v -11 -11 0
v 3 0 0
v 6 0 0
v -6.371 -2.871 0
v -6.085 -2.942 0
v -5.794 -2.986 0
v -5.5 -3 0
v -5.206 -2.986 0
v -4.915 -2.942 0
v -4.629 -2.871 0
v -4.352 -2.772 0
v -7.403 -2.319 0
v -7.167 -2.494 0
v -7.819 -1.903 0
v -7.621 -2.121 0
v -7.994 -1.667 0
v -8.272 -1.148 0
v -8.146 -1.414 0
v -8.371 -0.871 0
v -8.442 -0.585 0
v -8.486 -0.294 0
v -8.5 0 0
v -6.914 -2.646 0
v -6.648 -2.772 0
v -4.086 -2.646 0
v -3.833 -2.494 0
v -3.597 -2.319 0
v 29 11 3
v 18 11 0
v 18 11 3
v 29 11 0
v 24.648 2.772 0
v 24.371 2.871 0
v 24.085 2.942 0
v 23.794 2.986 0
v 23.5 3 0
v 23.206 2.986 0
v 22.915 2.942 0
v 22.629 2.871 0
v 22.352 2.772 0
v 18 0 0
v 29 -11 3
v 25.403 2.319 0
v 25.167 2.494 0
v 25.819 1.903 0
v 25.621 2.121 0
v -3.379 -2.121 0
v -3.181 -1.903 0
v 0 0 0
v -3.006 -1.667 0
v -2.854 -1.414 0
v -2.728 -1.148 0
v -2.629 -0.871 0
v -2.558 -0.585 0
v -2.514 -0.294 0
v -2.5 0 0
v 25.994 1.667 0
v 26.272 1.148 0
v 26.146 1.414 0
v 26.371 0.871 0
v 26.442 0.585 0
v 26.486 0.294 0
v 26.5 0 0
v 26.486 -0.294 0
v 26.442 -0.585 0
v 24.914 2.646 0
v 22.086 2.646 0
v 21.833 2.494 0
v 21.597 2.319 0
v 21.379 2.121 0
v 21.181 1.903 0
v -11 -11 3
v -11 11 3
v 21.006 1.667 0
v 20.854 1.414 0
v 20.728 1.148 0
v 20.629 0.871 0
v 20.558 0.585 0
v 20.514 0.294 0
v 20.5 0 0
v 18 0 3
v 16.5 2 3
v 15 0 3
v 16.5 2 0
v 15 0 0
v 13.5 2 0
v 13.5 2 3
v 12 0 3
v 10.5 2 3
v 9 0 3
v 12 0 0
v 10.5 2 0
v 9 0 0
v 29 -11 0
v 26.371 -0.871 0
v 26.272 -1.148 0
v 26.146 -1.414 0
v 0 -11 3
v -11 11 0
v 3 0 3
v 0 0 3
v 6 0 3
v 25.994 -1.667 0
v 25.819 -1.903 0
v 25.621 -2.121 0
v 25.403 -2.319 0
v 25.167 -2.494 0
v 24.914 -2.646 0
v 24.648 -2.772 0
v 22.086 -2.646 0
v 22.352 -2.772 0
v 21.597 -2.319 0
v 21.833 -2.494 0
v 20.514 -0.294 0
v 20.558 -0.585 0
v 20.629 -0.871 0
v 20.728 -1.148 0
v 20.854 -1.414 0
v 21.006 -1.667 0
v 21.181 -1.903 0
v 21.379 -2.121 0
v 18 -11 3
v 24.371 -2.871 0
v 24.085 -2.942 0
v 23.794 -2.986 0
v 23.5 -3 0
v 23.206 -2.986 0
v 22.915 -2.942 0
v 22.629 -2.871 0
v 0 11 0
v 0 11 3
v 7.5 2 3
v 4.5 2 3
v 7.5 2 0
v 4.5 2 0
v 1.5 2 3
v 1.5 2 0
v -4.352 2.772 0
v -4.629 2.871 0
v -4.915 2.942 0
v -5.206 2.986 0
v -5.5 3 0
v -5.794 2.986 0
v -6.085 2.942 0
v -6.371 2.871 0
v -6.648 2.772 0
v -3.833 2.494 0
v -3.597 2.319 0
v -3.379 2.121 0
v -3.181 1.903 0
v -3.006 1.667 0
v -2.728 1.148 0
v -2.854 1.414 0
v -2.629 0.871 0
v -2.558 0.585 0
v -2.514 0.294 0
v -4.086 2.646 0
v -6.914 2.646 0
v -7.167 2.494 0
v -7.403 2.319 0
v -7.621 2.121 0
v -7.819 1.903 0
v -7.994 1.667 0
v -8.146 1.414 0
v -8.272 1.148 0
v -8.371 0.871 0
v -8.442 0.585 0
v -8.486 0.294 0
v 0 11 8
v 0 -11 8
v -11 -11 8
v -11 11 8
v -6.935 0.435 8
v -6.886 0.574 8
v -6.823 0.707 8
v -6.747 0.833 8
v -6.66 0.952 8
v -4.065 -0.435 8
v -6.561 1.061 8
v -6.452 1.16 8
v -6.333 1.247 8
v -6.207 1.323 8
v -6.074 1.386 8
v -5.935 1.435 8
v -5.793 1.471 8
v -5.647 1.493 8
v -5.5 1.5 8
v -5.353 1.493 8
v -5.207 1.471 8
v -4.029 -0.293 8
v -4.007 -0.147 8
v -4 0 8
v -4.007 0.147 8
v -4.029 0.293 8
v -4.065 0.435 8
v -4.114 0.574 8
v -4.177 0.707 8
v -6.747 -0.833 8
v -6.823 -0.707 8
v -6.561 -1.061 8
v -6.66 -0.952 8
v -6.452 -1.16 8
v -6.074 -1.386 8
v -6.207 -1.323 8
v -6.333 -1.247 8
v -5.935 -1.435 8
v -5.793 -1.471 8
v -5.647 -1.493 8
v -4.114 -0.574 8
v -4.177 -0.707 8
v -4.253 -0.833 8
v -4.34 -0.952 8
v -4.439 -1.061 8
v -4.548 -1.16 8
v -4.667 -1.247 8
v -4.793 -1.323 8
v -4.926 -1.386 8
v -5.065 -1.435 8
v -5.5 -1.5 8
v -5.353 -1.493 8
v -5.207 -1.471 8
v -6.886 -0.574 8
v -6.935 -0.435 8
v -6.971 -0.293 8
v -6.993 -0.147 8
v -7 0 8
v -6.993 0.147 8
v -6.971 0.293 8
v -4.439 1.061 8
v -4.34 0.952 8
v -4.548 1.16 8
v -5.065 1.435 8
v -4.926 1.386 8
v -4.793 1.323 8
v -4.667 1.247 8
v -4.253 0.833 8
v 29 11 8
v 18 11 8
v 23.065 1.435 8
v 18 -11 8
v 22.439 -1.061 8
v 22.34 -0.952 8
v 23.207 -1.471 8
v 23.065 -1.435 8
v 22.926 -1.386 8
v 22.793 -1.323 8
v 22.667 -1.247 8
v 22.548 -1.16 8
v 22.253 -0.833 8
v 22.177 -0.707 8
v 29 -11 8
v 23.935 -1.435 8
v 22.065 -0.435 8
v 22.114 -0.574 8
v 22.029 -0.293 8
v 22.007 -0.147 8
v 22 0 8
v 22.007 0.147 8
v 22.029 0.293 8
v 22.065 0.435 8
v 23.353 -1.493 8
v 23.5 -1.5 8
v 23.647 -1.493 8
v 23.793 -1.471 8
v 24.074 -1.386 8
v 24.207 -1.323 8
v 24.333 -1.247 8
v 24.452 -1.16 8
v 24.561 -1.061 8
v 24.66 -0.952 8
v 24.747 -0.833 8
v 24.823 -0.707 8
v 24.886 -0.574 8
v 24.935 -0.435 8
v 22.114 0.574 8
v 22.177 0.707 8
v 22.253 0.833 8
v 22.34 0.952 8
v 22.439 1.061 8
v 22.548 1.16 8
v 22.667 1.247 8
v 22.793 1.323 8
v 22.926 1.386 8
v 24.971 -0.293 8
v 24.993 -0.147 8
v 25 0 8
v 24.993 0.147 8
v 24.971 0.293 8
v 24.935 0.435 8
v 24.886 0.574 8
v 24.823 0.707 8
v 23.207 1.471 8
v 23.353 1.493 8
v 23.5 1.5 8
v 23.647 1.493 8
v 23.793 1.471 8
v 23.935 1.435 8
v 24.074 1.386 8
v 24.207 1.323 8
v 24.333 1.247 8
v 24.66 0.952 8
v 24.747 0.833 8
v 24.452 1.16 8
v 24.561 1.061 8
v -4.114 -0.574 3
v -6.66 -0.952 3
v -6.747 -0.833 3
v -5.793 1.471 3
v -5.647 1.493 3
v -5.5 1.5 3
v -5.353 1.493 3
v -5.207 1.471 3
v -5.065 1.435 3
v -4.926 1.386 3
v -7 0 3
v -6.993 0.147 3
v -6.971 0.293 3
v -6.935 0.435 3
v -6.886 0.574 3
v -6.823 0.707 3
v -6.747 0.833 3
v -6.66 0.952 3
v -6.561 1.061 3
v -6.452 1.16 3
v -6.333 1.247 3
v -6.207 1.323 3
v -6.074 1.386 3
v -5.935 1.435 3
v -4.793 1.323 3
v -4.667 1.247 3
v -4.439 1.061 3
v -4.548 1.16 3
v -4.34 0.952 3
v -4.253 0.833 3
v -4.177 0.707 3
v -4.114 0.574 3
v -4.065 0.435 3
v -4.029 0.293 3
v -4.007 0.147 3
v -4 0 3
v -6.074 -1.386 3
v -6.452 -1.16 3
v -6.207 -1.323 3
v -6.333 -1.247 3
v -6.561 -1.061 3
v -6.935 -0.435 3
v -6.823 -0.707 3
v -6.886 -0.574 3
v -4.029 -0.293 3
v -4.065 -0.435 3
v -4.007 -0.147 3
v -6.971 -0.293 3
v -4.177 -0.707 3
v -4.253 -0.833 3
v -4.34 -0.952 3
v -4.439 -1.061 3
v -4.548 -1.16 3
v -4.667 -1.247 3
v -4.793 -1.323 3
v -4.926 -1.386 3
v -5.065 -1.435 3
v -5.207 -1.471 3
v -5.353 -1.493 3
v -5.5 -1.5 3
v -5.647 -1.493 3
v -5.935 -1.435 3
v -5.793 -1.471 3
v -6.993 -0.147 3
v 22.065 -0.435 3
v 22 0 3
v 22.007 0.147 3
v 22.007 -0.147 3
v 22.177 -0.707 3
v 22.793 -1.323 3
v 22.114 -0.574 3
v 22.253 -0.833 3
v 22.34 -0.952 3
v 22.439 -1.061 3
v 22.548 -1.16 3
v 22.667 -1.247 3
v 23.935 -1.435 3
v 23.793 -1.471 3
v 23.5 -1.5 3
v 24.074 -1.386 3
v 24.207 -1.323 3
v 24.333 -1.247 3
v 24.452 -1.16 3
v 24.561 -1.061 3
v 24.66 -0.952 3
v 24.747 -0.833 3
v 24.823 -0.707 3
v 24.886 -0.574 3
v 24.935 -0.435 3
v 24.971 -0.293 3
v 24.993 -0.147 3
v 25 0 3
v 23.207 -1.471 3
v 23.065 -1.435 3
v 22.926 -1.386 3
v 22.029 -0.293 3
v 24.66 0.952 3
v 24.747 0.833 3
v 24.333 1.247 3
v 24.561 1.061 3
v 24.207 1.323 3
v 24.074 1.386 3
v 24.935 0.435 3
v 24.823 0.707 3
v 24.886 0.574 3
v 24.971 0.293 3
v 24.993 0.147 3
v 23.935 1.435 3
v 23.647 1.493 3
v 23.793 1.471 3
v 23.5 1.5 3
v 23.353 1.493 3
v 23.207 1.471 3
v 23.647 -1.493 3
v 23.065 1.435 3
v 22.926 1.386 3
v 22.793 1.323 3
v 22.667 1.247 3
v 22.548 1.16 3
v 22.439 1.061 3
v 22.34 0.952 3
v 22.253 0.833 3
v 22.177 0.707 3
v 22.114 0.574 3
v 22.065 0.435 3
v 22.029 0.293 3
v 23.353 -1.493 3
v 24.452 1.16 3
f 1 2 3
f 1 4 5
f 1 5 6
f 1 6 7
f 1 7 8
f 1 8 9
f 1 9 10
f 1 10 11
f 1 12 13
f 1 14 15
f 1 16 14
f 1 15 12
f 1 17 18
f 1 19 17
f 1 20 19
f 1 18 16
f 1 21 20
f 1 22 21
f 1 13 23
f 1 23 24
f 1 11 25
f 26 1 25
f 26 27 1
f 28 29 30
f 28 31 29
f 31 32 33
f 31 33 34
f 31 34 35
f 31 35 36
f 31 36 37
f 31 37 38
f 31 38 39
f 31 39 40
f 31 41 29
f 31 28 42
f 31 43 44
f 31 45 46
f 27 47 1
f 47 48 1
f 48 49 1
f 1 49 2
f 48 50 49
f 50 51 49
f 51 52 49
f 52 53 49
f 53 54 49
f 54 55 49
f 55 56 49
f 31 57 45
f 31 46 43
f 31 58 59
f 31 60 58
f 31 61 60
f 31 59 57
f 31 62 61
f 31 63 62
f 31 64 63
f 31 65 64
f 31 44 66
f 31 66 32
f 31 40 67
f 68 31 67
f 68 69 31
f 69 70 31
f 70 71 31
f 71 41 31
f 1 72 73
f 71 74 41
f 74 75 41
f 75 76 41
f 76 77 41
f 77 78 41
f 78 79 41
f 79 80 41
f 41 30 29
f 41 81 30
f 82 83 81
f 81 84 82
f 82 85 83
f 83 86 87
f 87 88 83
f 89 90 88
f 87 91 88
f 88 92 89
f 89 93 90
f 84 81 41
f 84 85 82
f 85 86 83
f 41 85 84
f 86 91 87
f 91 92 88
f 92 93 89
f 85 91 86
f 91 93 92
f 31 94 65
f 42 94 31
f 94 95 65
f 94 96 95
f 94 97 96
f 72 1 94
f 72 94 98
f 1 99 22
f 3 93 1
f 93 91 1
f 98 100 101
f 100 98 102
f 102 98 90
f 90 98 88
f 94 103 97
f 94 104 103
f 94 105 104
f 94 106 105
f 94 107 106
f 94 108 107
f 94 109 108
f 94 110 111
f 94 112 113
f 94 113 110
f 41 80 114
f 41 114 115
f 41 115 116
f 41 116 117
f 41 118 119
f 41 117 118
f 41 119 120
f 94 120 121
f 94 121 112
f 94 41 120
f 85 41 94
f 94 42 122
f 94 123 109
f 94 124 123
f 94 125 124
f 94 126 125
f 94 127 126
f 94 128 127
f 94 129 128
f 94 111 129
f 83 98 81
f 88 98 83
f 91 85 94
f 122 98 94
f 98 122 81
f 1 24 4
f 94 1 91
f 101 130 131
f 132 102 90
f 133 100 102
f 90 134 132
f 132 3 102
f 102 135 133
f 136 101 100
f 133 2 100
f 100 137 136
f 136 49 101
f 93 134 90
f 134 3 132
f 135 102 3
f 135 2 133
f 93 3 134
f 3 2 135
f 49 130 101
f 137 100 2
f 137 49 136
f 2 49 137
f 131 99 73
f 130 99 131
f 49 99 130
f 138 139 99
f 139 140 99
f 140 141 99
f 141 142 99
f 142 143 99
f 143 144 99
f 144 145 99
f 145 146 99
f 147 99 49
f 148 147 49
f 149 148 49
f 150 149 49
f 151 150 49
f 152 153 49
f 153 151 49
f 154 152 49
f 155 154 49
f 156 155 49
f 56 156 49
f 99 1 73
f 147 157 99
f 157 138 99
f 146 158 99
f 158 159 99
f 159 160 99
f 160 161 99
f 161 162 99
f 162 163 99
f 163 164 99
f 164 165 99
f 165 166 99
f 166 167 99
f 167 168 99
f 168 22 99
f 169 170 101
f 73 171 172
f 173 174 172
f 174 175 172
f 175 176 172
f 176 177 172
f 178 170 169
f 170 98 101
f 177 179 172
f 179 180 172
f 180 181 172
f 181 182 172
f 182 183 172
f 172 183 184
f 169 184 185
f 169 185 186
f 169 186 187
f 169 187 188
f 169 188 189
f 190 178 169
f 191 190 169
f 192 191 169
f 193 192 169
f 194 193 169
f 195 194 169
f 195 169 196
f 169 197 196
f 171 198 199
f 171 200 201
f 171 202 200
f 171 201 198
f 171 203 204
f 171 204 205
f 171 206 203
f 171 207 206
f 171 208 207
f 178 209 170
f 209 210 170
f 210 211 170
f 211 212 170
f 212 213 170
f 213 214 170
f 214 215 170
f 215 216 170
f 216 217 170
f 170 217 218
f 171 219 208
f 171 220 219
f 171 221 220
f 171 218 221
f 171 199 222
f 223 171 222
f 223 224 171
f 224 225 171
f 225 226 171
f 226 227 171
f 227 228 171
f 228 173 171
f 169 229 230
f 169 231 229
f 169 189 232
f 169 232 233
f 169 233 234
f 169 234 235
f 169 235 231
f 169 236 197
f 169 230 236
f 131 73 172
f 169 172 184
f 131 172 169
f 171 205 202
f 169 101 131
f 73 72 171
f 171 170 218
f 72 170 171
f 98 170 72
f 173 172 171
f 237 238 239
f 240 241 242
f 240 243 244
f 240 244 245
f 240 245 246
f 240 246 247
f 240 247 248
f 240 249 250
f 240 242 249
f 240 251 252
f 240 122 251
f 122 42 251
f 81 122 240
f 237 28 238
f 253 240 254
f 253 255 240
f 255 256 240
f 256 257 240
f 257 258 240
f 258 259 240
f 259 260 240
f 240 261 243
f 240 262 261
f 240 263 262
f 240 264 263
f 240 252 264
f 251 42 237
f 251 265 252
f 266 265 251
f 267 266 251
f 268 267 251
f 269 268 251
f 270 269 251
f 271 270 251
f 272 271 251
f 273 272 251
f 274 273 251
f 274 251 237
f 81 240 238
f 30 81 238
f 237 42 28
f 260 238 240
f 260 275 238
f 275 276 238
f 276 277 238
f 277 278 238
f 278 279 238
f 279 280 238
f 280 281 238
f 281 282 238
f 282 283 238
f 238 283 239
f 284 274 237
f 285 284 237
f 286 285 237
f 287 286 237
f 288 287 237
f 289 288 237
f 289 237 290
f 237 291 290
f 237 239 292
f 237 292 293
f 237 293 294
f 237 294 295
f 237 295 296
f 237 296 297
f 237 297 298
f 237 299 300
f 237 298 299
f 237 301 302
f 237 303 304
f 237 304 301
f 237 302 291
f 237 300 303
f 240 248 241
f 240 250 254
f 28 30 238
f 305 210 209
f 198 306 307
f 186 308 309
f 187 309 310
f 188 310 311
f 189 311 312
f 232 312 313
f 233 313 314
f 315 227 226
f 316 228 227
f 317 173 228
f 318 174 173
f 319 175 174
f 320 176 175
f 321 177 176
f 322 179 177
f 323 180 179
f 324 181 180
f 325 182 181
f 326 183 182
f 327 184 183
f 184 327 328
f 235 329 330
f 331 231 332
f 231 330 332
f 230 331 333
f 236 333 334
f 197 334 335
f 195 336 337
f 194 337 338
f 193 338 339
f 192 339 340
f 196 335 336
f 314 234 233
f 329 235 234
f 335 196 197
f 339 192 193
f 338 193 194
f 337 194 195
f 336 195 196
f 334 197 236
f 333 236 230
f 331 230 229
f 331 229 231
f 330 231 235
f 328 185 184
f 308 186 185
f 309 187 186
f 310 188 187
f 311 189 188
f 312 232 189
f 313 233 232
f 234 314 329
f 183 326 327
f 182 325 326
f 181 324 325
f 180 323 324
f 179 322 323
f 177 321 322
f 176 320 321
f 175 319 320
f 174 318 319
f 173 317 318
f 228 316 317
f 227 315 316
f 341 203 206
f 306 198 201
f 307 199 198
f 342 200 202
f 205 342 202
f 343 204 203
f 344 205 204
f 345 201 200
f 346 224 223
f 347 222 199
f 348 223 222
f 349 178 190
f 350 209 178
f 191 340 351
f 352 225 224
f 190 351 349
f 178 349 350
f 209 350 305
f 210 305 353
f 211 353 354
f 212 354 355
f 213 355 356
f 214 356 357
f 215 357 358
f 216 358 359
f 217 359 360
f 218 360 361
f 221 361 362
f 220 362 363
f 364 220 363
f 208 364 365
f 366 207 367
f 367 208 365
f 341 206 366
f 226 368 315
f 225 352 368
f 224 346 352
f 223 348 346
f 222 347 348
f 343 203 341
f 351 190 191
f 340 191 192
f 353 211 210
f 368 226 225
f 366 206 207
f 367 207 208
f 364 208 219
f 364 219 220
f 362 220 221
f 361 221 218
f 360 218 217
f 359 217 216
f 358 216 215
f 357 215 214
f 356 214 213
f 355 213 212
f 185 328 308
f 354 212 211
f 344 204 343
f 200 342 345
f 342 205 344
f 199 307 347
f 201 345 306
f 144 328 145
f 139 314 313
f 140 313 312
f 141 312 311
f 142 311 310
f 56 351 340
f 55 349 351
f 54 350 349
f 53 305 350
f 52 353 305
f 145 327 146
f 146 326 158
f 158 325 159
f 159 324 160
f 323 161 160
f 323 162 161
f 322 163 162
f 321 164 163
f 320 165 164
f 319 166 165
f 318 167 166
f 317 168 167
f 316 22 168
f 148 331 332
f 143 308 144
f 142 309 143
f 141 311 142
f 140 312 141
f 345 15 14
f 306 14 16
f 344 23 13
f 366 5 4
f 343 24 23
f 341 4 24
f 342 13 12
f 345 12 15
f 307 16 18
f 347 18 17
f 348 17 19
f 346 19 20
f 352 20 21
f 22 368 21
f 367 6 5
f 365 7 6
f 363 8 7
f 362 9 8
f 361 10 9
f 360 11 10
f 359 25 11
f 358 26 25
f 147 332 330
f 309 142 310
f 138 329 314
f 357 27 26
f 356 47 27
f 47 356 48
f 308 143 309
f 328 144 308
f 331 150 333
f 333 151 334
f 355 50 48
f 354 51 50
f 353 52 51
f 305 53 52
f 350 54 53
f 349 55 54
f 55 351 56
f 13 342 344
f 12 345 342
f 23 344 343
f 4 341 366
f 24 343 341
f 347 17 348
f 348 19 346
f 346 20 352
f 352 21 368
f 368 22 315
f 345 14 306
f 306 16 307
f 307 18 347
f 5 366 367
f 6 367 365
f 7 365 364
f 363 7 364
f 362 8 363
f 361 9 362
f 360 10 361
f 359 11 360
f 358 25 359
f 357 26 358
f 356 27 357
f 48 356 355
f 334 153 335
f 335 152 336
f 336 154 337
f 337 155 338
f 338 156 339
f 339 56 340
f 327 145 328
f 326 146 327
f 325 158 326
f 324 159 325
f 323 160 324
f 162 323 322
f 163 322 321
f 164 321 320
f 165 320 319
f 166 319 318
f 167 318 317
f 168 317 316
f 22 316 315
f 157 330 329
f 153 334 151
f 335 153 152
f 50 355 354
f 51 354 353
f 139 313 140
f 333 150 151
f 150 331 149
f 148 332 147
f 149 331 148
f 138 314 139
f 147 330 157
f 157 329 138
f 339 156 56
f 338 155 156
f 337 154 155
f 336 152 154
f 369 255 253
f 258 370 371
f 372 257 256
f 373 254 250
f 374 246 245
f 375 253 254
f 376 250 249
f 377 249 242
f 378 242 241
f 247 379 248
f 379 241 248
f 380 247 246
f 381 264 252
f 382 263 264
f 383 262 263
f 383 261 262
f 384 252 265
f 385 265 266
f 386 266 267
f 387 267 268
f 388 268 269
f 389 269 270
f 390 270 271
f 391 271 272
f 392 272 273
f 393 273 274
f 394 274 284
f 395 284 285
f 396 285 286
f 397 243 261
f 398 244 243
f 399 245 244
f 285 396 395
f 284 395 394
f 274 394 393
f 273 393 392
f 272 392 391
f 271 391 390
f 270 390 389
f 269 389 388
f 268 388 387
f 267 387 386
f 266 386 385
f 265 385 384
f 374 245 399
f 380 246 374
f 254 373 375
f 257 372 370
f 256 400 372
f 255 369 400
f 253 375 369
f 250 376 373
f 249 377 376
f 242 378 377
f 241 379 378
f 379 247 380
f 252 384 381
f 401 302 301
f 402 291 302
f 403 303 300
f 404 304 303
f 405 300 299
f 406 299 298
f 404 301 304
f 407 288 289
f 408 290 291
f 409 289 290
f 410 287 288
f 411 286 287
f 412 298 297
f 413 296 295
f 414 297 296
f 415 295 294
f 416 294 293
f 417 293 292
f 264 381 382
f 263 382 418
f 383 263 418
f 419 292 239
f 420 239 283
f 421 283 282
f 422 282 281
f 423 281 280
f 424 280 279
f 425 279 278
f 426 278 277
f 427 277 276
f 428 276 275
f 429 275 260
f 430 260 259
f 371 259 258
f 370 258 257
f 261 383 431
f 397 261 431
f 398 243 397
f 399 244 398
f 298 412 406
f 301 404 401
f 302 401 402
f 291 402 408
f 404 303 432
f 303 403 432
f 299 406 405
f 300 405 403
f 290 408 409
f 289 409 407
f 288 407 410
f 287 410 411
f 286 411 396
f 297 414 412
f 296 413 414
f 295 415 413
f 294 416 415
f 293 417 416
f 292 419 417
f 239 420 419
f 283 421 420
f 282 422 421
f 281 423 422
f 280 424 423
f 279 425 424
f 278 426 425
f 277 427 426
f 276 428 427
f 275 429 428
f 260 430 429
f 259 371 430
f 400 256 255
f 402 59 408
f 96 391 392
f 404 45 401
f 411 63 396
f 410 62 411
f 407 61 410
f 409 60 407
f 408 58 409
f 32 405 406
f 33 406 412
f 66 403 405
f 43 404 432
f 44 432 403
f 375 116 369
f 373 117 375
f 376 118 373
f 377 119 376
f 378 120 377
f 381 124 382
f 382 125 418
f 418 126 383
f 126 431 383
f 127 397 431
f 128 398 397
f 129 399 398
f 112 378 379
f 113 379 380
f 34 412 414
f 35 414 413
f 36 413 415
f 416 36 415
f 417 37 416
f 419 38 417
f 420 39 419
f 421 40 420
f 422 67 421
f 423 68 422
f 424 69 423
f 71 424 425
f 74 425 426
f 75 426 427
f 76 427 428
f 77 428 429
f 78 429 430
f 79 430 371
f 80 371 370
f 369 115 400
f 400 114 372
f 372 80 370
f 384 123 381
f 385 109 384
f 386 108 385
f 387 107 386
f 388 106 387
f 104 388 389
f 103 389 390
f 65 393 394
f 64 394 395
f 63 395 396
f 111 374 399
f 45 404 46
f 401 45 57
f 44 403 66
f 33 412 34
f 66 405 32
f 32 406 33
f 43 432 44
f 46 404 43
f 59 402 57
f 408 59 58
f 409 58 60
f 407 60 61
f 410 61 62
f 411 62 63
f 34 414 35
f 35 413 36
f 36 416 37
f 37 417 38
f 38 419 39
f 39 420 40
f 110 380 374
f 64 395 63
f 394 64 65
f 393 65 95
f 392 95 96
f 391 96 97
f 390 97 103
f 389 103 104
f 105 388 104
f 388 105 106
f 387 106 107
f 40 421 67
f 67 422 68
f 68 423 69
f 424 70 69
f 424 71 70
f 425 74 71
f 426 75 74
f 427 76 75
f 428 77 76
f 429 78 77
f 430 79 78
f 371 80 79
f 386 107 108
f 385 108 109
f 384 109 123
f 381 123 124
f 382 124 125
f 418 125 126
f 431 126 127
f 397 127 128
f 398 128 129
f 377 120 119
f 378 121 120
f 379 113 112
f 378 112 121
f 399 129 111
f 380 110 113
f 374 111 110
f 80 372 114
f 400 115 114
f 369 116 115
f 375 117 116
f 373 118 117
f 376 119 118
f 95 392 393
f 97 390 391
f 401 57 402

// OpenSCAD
$fn= $preview ? 32 : 64;

l=40;
w=20;
t=8;

dl=3;
dw=2;
n = 2*3;

tooth_l = n*dl;
margin = (l-tooth_l)/2;

difference() {
        union() {
                linear_extrude(dl)
                polygon([
                        for(i=[0:2*n])[i*dl/2, i%2 * dw],
                        [n*dl, margin], [n*dl+margin, margin], [n*dl+margin, -margin],
                        [-margin, -margin], [-margin, margin], [0, margin]
                ]);

                translate([-margin, -margin, 0]) cube([margin, 2 * margin, t]);
                translate([-2*margin+l, -margin, 0]) cube([margin, 2 * margin, t]);
        }

        translate([-margin/2, 0, 0]) {
                cylinder(d=dl, h=t);
                cylinder(d1=2*dl, d2=dl, h=dl);
        }
        translate([l-3*margin/2, 0, 0]) {
                cylinder(d=dl, h=t);
                cylinder(d1=2*dl, d2=dl, h=dl);
        }
}
